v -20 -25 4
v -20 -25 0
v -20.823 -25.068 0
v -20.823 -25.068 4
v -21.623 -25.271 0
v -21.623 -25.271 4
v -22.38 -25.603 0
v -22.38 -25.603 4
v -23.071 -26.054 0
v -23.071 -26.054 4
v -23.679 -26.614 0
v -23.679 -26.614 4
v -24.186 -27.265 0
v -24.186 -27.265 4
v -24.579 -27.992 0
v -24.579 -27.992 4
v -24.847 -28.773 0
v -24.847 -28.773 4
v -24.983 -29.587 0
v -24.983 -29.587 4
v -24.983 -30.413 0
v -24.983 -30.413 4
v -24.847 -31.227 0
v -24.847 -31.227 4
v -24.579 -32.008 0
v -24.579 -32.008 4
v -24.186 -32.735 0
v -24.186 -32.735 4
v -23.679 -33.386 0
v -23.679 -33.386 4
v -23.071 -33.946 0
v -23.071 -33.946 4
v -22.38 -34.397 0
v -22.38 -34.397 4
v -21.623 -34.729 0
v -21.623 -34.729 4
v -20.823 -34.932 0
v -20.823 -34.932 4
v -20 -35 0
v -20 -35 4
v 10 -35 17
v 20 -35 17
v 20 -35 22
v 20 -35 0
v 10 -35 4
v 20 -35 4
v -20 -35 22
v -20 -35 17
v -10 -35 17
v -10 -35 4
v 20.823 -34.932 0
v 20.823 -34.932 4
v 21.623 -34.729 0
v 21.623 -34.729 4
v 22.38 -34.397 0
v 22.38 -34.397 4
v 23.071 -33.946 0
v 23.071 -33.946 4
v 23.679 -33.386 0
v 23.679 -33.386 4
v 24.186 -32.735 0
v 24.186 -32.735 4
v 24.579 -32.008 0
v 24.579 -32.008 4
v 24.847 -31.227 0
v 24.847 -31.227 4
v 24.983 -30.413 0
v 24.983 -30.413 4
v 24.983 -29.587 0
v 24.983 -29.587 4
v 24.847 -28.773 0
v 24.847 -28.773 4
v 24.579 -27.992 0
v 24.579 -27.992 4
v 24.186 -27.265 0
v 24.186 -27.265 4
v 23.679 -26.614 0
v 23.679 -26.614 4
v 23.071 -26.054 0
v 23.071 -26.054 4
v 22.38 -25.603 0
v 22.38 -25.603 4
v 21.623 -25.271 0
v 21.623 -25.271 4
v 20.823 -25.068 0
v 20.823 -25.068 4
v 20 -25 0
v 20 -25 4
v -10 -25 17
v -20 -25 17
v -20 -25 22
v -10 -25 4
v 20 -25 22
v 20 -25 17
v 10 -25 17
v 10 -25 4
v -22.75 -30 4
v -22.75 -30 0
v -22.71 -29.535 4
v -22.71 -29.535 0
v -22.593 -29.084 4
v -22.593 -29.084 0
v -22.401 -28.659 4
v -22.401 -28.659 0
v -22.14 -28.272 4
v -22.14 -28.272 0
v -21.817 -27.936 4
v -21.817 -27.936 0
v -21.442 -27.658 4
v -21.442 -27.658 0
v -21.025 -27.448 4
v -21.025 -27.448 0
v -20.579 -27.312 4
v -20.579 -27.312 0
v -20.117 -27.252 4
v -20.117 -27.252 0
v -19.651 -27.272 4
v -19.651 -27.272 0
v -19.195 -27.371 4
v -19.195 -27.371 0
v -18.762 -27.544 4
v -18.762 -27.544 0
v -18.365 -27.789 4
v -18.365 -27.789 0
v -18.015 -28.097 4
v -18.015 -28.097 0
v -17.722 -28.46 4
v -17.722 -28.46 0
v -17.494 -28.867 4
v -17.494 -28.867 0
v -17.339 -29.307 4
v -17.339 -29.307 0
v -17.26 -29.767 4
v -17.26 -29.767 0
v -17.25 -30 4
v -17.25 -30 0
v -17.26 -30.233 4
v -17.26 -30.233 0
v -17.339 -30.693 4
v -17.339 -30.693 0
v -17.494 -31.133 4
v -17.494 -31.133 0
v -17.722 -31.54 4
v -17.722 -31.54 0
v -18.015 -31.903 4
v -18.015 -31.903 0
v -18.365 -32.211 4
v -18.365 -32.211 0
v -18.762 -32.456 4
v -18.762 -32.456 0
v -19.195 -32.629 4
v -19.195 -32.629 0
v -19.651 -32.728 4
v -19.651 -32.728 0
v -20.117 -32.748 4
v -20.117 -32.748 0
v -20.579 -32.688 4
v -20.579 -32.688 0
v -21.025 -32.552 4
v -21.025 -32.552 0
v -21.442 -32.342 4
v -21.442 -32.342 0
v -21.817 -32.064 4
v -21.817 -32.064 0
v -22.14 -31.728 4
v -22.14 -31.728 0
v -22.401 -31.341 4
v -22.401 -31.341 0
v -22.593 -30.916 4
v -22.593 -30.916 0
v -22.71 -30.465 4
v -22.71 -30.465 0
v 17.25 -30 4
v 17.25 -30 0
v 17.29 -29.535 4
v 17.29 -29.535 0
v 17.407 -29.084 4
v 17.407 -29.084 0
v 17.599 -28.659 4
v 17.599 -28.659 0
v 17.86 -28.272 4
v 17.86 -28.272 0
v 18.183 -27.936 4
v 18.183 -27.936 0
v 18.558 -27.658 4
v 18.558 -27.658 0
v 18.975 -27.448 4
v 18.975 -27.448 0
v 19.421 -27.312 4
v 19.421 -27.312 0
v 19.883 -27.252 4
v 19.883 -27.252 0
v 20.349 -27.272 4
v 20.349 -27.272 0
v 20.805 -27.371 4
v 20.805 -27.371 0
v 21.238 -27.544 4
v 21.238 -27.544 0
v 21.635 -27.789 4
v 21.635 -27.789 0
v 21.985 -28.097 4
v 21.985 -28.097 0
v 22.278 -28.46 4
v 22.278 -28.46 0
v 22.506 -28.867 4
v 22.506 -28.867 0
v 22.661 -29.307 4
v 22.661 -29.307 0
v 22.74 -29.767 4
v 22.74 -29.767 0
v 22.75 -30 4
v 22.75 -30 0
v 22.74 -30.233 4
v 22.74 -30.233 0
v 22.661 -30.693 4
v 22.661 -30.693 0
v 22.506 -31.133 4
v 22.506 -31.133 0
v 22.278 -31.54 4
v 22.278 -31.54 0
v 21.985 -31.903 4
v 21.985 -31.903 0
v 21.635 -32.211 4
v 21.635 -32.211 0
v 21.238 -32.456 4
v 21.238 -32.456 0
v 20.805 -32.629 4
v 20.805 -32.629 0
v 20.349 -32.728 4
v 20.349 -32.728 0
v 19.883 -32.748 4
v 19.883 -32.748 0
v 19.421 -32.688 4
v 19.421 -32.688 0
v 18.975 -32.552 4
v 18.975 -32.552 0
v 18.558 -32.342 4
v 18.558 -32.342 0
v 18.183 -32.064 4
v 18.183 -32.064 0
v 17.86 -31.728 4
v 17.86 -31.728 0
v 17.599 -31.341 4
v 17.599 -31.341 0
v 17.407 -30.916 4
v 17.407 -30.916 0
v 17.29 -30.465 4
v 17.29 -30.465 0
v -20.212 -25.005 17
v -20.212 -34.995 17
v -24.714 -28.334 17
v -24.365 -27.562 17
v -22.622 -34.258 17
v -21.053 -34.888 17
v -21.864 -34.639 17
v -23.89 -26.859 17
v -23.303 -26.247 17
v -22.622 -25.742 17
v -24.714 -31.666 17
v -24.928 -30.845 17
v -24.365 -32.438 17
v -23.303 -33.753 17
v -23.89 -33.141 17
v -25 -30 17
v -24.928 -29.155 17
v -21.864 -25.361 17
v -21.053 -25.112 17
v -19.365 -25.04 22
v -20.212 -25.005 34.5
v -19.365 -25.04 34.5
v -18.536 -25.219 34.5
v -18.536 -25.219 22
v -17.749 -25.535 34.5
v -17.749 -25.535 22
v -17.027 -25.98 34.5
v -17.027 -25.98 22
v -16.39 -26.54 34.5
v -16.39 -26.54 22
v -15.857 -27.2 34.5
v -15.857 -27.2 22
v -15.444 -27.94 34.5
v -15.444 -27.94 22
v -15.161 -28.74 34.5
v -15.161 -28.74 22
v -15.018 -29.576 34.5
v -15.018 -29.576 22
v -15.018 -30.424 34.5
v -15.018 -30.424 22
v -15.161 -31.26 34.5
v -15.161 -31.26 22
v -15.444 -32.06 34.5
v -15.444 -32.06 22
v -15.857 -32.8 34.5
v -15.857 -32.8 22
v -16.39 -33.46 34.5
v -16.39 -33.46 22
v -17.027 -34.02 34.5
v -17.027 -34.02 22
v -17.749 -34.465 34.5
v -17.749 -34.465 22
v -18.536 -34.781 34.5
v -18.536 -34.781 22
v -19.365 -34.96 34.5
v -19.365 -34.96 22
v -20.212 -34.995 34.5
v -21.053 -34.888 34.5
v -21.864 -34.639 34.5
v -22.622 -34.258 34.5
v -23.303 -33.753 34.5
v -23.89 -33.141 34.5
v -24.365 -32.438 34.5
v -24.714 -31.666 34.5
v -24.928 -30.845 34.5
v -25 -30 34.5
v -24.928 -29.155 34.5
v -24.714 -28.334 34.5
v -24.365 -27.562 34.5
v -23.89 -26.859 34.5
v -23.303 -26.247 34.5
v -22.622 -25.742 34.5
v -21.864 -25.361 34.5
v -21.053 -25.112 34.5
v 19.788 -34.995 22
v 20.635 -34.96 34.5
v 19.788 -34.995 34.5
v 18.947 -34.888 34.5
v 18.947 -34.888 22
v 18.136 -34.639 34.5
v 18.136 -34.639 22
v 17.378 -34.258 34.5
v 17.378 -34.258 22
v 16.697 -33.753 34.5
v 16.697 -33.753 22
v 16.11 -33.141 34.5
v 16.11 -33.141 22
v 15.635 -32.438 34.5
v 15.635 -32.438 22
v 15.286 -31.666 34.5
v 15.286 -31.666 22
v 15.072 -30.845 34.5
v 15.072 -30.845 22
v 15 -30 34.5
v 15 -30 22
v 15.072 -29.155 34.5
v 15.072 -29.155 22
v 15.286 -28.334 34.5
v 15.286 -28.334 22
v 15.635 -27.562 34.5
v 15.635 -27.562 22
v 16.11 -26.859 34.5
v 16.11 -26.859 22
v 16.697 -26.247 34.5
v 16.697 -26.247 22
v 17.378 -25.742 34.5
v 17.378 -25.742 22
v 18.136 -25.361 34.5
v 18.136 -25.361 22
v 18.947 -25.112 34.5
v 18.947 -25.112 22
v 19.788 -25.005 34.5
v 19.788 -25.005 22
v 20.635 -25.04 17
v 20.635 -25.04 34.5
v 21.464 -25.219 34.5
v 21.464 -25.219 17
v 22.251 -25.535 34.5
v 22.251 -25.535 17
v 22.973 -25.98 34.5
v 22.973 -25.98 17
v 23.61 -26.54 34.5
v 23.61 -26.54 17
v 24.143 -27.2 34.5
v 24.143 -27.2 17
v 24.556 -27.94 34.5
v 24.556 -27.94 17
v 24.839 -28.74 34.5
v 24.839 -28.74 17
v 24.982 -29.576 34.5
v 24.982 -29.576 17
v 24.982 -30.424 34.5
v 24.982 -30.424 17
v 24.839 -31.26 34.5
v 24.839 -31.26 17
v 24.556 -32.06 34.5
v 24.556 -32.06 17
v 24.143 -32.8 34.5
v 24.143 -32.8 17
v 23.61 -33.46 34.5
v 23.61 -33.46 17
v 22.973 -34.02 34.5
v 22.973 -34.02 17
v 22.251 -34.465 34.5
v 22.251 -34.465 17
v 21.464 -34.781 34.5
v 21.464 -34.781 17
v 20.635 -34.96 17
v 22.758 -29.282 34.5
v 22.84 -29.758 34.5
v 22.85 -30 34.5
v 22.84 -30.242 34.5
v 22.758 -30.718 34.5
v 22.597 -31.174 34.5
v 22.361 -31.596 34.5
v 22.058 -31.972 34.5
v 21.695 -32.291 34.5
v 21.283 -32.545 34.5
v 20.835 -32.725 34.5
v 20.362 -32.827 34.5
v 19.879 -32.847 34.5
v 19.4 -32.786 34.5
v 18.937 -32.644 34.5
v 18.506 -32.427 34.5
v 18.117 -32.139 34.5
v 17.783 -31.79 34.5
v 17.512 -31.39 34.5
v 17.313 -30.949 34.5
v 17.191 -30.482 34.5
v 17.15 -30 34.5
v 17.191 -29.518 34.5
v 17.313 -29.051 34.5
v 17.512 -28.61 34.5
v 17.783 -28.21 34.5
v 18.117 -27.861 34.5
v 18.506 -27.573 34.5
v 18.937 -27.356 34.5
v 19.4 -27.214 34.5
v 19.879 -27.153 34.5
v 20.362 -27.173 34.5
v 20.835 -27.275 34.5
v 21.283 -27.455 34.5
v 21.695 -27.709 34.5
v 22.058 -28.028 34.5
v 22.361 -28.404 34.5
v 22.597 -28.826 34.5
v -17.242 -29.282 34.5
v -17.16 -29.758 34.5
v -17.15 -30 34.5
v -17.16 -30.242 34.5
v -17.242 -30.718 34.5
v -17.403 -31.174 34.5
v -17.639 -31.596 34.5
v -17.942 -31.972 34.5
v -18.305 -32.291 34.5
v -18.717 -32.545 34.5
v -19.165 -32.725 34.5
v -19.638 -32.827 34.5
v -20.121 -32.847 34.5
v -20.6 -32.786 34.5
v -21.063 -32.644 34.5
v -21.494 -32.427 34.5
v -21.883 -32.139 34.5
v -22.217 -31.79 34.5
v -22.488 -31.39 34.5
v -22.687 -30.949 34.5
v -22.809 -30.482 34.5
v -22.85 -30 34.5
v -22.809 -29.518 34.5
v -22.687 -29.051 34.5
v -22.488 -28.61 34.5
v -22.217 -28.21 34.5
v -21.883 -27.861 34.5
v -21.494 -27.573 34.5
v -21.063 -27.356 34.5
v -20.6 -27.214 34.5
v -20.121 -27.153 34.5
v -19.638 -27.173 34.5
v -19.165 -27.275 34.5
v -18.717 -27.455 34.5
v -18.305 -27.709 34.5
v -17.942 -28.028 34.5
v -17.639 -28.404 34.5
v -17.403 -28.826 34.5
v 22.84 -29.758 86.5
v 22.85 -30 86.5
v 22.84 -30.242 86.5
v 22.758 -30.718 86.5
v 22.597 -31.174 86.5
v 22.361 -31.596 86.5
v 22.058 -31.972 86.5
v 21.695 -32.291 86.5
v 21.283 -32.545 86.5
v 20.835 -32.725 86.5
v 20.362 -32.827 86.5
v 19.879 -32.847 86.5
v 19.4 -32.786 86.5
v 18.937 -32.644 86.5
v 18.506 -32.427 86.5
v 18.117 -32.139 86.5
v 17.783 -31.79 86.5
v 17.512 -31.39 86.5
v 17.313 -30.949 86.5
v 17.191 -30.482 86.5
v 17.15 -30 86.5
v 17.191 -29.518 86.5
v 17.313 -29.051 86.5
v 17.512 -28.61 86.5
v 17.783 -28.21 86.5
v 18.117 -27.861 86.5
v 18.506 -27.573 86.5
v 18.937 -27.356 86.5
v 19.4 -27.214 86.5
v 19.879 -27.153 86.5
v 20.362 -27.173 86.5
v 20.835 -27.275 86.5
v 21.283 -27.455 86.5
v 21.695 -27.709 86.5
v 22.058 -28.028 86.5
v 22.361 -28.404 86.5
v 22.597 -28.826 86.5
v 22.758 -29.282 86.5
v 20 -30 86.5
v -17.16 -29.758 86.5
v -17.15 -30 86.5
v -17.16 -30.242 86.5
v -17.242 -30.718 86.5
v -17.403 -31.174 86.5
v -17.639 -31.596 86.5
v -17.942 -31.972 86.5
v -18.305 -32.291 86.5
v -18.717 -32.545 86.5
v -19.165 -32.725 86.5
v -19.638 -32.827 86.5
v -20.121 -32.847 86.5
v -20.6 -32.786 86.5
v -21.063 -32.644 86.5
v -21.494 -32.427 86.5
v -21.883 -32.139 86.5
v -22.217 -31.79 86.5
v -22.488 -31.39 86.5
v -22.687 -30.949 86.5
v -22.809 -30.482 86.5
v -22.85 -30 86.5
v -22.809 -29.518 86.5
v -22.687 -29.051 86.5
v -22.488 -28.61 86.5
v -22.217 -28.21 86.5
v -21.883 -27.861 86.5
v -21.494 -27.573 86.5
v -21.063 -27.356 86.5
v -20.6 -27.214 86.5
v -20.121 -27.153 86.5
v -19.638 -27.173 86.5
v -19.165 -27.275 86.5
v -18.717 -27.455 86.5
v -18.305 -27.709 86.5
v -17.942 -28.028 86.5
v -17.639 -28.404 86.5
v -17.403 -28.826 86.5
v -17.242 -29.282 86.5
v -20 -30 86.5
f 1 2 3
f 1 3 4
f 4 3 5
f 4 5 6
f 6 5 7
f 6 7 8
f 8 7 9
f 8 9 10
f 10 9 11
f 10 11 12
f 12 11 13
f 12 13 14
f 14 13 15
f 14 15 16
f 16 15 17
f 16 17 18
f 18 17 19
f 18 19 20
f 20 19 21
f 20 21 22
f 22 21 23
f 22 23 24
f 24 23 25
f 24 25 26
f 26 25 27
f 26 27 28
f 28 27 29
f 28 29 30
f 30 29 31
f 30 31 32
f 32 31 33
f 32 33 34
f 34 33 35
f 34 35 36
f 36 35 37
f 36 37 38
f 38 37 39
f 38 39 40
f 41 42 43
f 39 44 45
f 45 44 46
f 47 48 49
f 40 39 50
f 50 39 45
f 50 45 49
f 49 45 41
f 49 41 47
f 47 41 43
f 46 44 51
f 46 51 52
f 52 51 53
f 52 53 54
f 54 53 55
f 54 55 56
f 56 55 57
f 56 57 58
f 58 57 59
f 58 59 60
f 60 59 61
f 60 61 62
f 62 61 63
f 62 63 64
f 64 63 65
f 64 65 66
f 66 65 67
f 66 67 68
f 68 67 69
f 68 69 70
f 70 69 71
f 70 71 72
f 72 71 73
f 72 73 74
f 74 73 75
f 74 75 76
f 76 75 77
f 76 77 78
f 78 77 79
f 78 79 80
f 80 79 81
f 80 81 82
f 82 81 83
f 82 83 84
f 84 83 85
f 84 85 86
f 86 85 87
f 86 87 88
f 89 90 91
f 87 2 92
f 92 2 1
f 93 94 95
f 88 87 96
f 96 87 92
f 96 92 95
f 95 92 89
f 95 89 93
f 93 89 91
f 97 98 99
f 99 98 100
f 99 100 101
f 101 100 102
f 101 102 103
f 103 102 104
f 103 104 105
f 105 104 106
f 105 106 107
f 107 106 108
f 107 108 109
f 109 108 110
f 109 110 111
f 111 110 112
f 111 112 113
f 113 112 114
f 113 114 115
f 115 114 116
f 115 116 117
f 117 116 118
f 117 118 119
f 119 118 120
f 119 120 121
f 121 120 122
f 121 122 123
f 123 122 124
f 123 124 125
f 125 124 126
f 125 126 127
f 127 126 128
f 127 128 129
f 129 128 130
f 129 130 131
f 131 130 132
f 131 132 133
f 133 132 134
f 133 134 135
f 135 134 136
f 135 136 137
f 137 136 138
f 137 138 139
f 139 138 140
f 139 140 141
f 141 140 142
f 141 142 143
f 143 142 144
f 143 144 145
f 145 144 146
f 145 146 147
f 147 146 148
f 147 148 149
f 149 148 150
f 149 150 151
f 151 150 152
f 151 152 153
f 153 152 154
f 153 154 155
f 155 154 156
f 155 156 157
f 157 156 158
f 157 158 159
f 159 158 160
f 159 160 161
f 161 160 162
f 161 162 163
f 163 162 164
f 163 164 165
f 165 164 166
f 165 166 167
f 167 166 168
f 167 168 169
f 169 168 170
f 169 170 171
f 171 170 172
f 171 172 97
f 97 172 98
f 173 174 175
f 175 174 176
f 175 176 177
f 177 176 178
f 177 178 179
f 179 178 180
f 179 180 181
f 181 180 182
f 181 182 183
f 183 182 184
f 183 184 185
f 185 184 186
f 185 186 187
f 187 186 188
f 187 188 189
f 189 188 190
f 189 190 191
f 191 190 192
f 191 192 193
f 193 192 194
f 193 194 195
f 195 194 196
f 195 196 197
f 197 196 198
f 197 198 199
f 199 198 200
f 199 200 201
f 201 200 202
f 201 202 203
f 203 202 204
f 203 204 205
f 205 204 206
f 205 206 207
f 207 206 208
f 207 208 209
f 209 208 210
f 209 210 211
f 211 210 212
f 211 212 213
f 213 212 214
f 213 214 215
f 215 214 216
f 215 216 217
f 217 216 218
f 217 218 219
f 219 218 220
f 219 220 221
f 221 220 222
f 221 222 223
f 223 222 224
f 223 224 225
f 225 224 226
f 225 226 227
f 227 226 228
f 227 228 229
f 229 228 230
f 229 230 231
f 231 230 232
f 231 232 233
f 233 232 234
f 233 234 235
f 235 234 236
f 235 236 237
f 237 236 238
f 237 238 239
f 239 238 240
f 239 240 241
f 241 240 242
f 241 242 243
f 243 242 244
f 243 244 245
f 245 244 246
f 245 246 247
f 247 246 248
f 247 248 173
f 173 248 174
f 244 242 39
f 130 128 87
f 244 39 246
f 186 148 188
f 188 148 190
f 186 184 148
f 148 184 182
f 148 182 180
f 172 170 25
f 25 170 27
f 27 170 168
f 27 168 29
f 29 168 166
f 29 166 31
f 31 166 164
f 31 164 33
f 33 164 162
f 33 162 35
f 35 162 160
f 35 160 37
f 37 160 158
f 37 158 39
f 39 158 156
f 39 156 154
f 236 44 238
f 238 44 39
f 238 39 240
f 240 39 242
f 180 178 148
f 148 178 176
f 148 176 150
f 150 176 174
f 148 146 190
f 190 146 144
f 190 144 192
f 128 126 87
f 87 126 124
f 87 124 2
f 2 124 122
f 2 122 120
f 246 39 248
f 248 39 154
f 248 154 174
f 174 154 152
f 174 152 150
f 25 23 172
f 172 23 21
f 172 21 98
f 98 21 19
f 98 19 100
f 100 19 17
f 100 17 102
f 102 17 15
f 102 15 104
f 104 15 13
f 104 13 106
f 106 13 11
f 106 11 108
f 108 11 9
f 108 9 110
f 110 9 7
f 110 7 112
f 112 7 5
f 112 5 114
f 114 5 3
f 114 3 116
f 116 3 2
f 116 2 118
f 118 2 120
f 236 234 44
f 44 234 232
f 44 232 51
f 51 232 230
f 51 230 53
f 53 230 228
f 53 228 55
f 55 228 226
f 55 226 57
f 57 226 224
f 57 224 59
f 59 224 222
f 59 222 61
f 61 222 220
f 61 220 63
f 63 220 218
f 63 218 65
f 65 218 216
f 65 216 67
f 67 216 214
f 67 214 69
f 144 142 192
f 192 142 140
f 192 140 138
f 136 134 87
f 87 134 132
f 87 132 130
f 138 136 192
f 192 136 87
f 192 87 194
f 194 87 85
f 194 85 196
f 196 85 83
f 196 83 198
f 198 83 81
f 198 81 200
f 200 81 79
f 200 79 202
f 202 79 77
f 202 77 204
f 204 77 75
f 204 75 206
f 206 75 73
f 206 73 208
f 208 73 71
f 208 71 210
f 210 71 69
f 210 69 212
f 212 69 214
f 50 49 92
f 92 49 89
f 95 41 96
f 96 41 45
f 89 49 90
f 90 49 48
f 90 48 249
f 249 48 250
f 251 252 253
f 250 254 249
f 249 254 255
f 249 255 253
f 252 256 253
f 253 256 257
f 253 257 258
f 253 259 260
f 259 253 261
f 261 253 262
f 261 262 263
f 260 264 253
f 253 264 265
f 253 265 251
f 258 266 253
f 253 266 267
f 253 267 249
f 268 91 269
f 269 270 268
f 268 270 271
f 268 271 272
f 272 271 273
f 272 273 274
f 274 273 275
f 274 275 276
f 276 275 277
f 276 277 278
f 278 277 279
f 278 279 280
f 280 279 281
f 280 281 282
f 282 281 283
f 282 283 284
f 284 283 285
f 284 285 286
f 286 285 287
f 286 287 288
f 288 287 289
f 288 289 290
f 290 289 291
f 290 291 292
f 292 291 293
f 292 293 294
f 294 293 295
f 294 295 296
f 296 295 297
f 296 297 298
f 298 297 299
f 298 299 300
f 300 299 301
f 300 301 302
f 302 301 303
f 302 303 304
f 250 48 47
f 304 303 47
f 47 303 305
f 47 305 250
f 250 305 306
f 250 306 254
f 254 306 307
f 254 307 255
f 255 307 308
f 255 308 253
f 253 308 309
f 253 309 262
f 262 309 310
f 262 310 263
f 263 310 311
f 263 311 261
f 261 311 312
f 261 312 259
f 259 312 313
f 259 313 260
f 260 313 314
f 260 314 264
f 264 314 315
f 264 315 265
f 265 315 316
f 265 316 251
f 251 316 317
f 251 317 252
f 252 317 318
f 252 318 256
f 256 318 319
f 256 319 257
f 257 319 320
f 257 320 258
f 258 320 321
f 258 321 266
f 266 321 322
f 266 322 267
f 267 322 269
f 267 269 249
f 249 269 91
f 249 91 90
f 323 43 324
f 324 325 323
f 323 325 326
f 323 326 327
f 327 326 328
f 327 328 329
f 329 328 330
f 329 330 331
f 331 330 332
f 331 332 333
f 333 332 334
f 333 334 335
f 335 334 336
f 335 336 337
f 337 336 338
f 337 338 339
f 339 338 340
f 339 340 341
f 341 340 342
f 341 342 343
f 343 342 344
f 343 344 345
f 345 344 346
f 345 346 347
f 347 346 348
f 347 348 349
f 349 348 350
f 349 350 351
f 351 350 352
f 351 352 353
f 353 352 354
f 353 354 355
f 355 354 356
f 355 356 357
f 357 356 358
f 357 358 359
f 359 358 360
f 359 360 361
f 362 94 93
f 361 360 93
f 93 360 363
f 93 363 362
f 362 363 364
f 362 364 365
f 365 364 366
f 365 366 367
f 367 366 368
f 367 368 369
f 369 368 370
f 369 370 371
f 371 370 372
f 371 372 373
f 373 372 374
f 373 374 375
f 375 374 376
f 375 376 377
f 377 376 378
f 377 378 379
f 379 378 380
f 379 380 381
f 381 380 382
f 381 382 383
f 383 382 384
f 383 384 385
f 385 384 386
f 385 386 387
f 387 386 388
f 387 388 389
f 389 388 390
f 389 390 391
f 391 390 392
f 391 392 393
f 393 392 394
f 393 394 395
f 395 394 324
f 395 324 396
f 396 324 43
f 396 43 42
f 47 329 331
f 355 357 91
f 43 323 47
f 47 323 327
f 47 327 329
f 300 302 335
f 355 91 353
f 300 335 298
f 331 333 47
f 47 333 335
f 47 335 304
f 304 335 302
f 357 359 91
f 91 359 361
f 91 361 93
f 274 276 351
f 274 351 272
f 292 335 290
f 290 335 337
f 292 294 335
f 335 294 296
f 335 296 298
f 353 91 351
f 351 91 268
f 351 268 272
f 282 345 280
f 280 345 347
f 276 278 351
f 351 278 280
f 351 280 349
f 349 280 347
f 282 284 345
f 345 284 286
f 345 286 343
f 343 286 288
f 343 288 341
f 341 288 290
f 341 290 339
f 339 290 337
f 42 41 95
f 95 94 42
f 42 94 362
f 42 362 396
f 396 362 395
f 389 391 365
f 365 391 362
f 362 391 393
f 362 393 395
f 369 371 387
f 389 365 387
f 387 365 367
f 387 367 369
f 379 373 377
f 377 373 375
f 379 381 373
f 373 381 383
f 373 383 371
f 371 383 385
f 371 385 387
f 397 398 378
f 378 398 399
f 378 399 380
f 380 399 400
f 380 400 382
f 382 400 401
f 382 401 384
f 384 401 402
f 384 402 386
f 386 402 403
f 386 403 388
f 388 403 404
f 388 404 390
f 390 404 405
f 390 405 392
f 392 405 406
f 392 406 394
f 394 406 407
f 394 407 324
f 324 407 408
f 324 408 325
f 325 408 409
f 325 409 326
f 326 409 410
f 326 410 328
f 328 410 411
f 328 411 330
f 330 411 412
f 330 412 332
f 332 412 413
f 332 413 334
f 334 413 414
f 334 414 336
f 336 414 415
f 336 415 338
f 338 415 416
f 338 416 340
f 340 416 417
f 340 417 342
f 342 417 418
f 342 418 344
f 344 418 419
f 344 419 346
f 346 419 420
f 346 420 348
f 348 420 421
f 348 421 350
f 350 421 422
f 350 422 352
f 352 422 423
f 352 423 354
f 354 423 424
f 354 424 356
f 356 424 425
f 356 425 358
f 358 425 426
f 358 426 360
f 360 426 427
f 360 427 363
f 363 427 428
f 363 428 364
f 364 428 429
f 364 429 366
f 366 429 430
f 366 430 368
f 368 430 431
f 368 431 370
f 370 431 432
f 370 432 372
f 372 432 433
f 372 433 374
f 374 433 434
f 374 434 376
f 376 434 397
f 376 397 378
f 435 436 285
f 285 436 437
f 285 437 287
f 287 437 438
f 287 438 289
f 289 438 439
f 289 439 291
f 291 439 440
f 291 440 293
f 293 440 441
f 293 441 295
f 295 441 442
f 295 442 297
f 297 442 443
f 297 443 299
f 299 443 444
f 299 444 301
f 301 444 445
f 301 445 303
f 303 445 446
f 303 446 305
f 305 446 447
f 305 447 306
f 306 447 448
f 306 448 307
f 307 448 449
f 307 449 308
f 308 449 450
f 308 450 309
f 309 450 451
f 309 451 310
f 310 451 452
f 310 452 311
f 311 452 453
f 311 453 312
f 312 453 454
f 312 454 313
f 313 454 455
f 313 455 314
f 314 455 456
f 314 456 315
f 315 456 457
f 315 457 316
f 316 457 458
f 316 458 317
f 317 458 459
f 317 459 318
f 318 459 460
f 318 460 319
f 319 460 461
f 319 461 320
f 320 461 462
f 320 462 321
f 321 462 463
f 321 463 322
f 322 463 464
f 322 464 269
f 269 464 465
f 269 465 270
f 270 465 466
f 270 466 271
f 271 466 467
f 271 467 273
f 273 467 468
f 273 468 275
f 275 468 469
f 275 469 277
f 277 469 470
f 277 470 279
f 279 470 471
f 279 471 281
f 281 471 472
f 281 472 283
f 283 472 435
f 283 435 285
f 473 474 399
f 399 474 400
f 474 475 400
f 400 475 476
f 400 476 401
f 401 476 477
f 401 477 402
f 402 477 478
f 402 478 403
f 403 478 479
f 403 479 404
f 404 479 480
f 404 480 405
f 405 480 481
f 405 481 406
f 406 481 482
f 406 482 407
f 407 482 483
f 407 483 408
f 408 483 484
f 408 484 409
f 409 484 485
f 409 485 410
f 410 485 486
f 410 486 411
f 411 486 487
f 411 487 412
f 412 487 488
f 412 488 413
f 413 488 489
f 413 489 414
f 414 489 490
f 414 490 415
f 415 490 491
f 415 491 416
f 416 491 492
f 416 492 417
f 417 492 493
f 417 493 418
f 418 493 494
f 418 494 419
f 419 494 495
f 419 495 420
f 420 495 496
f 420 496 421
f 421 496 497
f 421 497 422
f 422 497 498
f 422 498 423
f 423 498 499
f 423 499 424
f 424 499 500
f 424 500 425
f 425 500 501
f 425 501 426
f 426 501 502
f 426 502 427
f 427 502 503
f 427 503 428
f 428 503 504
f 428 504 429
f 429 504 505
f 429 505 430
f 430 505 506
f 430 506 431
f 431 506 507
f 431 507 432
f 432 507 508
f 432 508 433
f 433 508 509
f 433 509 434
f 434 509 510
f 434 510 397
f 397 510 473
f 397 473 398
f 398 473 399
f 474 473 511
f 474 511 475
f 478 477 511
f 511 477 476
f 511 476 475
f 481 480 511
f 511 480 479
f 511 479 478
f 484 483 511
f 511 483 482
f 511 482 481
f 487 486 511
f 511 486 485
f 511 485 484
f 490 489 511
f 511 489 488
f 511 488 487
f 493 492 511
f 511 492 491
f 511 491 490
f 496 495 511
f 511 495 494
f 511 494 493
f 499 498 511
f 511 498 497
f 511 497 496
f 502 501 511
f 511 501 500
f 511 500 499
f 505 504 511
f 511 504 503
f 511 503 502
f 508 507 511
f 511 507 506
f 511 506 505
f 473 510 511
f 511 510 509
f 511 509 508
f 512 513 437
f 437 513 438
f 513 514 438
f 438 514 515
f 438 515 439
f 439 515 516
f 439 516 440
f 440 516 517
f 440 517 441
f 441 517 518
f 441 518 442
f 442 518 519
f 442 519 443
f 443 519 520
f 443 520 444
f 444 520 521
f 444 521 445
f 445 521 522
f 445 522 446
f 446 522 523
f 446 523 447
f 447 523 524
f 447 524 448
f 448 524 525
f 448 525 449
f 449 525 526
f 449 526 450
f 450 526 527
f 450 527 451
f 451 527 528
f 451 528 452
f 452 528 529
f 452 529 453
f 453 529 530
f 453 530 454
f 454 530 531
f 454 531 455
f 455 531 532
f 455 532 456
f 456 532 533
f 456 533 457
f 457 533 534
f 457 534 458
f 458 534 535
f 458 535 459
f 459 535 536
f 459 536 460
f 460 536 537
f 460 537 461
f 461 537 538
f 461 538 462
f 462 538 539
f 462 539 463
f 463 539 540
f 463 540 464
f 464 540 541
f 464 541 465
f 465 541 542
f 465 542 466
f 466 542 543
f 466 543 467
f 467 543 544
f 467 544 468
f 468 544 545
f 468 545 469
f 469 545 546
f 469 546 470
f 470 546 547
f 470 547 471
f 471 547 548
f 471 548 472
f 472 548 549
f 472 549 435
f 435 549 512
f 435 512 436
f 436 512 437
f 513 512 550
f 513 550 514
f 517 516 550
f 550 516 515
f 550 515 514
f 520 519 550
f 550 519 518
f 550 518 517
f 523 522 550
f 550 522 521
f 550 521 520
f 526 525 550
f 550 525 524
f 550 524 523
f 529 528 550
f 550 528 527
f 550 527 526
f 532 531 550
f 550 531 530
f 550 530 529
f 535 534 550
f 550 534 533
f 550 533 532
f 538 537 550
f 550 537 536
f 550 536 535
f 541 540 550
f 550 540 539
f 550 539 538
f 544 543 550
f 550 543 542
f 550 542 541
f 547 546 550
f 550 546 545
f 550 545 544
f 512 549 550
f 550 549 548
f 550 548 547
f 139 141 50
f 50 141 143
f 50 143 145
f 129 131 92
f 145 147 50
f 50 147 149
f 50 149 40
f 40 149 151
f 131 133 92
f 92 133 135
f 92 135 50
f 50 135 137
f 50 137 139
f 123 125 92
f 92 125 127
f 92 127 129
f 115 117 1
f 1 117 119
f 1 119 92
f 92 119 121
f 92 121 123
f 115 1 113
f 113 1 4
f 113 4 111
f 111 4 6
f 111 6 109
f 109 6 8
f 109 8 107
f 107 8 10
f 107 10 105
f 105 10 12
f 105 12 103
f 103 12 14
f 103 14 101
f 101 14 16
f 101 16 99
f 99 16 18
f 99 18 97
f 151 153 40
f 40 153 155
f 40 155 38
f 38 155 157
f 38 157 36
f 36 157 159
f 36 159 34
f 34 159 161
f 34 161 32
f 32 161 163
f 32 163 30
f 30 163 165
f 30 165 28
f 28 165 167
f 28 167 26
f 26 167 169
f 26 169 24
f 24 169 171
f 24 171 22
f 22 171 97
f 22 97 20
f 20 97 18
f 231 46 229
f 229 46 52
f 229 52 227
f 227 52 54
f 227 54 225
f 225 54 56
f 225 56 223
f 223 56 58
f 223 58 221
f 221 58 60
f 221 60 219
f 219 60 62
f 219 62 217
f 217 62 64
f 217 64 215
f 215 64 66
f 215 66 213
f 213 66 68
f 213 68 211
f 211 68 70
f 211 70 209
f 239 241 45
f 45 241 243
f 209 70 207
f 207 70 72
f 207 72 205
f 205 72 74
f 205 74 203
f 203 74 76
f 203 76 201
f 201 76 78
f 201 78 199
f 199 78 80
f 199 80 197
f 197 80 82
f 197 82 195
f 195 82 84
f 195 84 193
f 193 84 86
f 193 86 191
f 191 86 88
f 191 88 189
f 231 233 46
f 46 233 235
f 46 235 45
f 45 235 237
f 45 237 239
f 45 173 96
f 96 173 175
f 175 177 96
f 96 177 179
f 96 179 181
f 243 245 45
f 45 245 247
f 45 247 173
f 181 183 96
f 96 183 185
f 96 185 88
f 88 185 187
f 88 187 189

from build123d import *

# Parameters (mm, degrees)
SKETCH1_R           = 5
SKETCH1_R_2         = 2.75
BOSS_EXTRUDE1_DEPTH = 2
SKETCH2_W           = 10
SKETCH2_H           = 10
BOSS_EXTRUDE2_DEPTH = 15
SKETCH3_R           = 2.75
SKETCH3_W           = 20
SKETCH3_H           = 10
BOSS_EXTRUDE3_DEPTH = 5
SKETCH4_R           = 5
BOSS_EXTRUDE4_DEPTH = 12.5
SKETCH5_R           = 2.85
BOSS_EXTRUDE5_DEPTH = 52
BOSS_EXTRUDE6_START = 5
SKETCH6_R           = 2.75
BOSS_EXTRUDE6_DEPTH = 5
SKETCH8_R           = 2.75
BOSS_EXTRUDE7_DEPTH = 2


with BuildPart() as part:
    # Sketch1 → Boss-Extrude1 (new body)
    # profile 1 of 3: a face of its own
    with BuildSketch(Plane.XY):
        with Locations((-20, -30)):
            Circle(SKETCH1_R)
        with Locations((-20, -30)):
            Circle(SKETCH1_R_2, mode=Mode.SUBTRACT)
    # profile 2 of 3: a face of its own
    with BuildSketch(Plane.XY):
        with BuildLine():
            Line((20, -25), (-20, -25))
            ThreePointArc((-20, -25), (-16.464466094, -26.464466094), (-15, -30))
            ThreePointArc((-15, -30), (-16.464466094, -33.535533906), (-20, -35))
            Line((-20, -35), (20, -35))
            ThreePointArc((20, -35), (15, -30), (20, -25))
        make_face()
    # profile 3 of 3: a face of its own
    with BuildSketch(Plane.XY):
        with Locations((20, -30)):
            Circle(SKETCH1_R)
        with Locations((20, -30)):
            Circle(SKETCH1_R_2, mode=Mode.SUBTRACT)
    extrude(amount=BOSS_EXTRUDE1_DEPTH)

    # Sketch2 → Boss-Extrude2 (add)
    with BuildSketch(Plane.XY.offset(2)):
        with Locations((-5, -30)):
            Rectangle(SKETCH2_W, SKETCH2_H)
        with Locations((5, -30)):
            Rectangle(SKETCH2_W, SKETCH2_H)
    extrude(amount=BOSS_EXTRUDE2_DEPTH)

    # Sketch3 → Boss-Extrude3 (add)
    # profile 1 of 3: a face of its own
    with BuildSketch(Plane.XY.offset(17)):
        with BuildLine():
            Line((-10, -25), (-20, -25))
            ThreePointArc((-20, -25), (-25, -30), (-20, -35))
            Line((-20, -35), (-10, -35))
            Line((-10, -35), (-10, -25))
        make_face()
        with Locations((-20, -30)):
            Circle(SKETCH3_R, mode=Mode.SUBTRACT)
    # profile 2 of 3: a face of its own
    with BuildSketch(Plane.XY.offset(17)):
        with Locations((0, -30)):
            Rectangle(SKETCH3_W, SKETCH3_H)
    # profile 3 of 3: a face of its own
    with BuildSketch(Plane.XY.offset(17)):
        with BuildLine():
            Line((10, -35), (20, -35))
            ThreePointArc((20, -35), (25, -30), (20, -25))
            Line((20, -25), (10, -25))
            Line((10, -25), (10, -35))
        make_face()
        with Locations((20, -30)):
            Circle(SKETCH3_R, mode=Mode.SUBTRACT)
    extrude(amount=BOSS_EXTRUDE3_DEPTH)

    # Sketch4 → Boss-Extrude4 (add)
    with BuildSketch(Plane.XY.offset(22)):
        with Locations(Location((20, -30, 0), (0, 0, 180))):
            Circle(SKETCH4_R)
        with Locations(Location((-20, -30, 0), (0, 0, 180))):
            Circle(SKETCH4_R)
    extrude(amount=BOSS_EXTRUDE4_DEPTH)

    # Sketch5 → Boss-Extrude5 (add)
    with BuildSketch(Plane.XY.offset(34.5)):
        with Locations((20, -30)):
            Circle(SKETCH5_R)
        with Locations((-20, -30)):
            Circle(SKETCH5_R)
    extrude(amount=BOSS_EXTRUDE5_DEPTH)

    # Sketch6 → Boss-Extrude6 (add)
    with BuildSketch(Plane(origin=(0, 0, 22), x_dir=(-1, 0, 0), z_dir=(0, 0, -1)).offset(BOSS_EXTRUDE6_START)):
        with Locations(Location((20, -30, 0), (0, 0, 180))):
            Circle(SKETCH6_R)
        with Locations(Location((-20, -30, 0), (0, 0, 180))):
            Circle(SKETCH6_R)
    extrude(amount=-BOSS_EXTRUDE6_DEPTH)

    # Sketch8 → Boss-Extrude7 (add)
    # profile 1 of 2: a face of its own
    with BuildSketch(Plane.XY.offset(2)):
        with BuildLine():
            Line((-10, -35), (-10, -25))
            Line((-10, -25), (-20, -25))
            ThreePointArc((-20, -25), (-25, -30), (-20, -35))
            Line((-20, -35), (-10, -35))
        make_face()
        with Locations((-20, -30)):
            Circle(SKETCH8_R, mode=Mode.SUBTRACT)
    # profile 2 of 2: a face of its own
    with BuildSketch(Plane.XY.offset(2)):
        with BuildLine():
            Line((20, -25), (10, -25))
            Line((10, -25), (10, -35))
            Line((10, -35), (20, -35))
            ThreePointArc((20, -35), (25, -30), (20, -25))
        make_face()
        with Locations((20, -30)):
            Circle(SKETCH8_R, mode=Mode.SUBTRACT)
    extrude(amount=BOSS_EXTRUDE7_DEPTH)


solid = part.part
